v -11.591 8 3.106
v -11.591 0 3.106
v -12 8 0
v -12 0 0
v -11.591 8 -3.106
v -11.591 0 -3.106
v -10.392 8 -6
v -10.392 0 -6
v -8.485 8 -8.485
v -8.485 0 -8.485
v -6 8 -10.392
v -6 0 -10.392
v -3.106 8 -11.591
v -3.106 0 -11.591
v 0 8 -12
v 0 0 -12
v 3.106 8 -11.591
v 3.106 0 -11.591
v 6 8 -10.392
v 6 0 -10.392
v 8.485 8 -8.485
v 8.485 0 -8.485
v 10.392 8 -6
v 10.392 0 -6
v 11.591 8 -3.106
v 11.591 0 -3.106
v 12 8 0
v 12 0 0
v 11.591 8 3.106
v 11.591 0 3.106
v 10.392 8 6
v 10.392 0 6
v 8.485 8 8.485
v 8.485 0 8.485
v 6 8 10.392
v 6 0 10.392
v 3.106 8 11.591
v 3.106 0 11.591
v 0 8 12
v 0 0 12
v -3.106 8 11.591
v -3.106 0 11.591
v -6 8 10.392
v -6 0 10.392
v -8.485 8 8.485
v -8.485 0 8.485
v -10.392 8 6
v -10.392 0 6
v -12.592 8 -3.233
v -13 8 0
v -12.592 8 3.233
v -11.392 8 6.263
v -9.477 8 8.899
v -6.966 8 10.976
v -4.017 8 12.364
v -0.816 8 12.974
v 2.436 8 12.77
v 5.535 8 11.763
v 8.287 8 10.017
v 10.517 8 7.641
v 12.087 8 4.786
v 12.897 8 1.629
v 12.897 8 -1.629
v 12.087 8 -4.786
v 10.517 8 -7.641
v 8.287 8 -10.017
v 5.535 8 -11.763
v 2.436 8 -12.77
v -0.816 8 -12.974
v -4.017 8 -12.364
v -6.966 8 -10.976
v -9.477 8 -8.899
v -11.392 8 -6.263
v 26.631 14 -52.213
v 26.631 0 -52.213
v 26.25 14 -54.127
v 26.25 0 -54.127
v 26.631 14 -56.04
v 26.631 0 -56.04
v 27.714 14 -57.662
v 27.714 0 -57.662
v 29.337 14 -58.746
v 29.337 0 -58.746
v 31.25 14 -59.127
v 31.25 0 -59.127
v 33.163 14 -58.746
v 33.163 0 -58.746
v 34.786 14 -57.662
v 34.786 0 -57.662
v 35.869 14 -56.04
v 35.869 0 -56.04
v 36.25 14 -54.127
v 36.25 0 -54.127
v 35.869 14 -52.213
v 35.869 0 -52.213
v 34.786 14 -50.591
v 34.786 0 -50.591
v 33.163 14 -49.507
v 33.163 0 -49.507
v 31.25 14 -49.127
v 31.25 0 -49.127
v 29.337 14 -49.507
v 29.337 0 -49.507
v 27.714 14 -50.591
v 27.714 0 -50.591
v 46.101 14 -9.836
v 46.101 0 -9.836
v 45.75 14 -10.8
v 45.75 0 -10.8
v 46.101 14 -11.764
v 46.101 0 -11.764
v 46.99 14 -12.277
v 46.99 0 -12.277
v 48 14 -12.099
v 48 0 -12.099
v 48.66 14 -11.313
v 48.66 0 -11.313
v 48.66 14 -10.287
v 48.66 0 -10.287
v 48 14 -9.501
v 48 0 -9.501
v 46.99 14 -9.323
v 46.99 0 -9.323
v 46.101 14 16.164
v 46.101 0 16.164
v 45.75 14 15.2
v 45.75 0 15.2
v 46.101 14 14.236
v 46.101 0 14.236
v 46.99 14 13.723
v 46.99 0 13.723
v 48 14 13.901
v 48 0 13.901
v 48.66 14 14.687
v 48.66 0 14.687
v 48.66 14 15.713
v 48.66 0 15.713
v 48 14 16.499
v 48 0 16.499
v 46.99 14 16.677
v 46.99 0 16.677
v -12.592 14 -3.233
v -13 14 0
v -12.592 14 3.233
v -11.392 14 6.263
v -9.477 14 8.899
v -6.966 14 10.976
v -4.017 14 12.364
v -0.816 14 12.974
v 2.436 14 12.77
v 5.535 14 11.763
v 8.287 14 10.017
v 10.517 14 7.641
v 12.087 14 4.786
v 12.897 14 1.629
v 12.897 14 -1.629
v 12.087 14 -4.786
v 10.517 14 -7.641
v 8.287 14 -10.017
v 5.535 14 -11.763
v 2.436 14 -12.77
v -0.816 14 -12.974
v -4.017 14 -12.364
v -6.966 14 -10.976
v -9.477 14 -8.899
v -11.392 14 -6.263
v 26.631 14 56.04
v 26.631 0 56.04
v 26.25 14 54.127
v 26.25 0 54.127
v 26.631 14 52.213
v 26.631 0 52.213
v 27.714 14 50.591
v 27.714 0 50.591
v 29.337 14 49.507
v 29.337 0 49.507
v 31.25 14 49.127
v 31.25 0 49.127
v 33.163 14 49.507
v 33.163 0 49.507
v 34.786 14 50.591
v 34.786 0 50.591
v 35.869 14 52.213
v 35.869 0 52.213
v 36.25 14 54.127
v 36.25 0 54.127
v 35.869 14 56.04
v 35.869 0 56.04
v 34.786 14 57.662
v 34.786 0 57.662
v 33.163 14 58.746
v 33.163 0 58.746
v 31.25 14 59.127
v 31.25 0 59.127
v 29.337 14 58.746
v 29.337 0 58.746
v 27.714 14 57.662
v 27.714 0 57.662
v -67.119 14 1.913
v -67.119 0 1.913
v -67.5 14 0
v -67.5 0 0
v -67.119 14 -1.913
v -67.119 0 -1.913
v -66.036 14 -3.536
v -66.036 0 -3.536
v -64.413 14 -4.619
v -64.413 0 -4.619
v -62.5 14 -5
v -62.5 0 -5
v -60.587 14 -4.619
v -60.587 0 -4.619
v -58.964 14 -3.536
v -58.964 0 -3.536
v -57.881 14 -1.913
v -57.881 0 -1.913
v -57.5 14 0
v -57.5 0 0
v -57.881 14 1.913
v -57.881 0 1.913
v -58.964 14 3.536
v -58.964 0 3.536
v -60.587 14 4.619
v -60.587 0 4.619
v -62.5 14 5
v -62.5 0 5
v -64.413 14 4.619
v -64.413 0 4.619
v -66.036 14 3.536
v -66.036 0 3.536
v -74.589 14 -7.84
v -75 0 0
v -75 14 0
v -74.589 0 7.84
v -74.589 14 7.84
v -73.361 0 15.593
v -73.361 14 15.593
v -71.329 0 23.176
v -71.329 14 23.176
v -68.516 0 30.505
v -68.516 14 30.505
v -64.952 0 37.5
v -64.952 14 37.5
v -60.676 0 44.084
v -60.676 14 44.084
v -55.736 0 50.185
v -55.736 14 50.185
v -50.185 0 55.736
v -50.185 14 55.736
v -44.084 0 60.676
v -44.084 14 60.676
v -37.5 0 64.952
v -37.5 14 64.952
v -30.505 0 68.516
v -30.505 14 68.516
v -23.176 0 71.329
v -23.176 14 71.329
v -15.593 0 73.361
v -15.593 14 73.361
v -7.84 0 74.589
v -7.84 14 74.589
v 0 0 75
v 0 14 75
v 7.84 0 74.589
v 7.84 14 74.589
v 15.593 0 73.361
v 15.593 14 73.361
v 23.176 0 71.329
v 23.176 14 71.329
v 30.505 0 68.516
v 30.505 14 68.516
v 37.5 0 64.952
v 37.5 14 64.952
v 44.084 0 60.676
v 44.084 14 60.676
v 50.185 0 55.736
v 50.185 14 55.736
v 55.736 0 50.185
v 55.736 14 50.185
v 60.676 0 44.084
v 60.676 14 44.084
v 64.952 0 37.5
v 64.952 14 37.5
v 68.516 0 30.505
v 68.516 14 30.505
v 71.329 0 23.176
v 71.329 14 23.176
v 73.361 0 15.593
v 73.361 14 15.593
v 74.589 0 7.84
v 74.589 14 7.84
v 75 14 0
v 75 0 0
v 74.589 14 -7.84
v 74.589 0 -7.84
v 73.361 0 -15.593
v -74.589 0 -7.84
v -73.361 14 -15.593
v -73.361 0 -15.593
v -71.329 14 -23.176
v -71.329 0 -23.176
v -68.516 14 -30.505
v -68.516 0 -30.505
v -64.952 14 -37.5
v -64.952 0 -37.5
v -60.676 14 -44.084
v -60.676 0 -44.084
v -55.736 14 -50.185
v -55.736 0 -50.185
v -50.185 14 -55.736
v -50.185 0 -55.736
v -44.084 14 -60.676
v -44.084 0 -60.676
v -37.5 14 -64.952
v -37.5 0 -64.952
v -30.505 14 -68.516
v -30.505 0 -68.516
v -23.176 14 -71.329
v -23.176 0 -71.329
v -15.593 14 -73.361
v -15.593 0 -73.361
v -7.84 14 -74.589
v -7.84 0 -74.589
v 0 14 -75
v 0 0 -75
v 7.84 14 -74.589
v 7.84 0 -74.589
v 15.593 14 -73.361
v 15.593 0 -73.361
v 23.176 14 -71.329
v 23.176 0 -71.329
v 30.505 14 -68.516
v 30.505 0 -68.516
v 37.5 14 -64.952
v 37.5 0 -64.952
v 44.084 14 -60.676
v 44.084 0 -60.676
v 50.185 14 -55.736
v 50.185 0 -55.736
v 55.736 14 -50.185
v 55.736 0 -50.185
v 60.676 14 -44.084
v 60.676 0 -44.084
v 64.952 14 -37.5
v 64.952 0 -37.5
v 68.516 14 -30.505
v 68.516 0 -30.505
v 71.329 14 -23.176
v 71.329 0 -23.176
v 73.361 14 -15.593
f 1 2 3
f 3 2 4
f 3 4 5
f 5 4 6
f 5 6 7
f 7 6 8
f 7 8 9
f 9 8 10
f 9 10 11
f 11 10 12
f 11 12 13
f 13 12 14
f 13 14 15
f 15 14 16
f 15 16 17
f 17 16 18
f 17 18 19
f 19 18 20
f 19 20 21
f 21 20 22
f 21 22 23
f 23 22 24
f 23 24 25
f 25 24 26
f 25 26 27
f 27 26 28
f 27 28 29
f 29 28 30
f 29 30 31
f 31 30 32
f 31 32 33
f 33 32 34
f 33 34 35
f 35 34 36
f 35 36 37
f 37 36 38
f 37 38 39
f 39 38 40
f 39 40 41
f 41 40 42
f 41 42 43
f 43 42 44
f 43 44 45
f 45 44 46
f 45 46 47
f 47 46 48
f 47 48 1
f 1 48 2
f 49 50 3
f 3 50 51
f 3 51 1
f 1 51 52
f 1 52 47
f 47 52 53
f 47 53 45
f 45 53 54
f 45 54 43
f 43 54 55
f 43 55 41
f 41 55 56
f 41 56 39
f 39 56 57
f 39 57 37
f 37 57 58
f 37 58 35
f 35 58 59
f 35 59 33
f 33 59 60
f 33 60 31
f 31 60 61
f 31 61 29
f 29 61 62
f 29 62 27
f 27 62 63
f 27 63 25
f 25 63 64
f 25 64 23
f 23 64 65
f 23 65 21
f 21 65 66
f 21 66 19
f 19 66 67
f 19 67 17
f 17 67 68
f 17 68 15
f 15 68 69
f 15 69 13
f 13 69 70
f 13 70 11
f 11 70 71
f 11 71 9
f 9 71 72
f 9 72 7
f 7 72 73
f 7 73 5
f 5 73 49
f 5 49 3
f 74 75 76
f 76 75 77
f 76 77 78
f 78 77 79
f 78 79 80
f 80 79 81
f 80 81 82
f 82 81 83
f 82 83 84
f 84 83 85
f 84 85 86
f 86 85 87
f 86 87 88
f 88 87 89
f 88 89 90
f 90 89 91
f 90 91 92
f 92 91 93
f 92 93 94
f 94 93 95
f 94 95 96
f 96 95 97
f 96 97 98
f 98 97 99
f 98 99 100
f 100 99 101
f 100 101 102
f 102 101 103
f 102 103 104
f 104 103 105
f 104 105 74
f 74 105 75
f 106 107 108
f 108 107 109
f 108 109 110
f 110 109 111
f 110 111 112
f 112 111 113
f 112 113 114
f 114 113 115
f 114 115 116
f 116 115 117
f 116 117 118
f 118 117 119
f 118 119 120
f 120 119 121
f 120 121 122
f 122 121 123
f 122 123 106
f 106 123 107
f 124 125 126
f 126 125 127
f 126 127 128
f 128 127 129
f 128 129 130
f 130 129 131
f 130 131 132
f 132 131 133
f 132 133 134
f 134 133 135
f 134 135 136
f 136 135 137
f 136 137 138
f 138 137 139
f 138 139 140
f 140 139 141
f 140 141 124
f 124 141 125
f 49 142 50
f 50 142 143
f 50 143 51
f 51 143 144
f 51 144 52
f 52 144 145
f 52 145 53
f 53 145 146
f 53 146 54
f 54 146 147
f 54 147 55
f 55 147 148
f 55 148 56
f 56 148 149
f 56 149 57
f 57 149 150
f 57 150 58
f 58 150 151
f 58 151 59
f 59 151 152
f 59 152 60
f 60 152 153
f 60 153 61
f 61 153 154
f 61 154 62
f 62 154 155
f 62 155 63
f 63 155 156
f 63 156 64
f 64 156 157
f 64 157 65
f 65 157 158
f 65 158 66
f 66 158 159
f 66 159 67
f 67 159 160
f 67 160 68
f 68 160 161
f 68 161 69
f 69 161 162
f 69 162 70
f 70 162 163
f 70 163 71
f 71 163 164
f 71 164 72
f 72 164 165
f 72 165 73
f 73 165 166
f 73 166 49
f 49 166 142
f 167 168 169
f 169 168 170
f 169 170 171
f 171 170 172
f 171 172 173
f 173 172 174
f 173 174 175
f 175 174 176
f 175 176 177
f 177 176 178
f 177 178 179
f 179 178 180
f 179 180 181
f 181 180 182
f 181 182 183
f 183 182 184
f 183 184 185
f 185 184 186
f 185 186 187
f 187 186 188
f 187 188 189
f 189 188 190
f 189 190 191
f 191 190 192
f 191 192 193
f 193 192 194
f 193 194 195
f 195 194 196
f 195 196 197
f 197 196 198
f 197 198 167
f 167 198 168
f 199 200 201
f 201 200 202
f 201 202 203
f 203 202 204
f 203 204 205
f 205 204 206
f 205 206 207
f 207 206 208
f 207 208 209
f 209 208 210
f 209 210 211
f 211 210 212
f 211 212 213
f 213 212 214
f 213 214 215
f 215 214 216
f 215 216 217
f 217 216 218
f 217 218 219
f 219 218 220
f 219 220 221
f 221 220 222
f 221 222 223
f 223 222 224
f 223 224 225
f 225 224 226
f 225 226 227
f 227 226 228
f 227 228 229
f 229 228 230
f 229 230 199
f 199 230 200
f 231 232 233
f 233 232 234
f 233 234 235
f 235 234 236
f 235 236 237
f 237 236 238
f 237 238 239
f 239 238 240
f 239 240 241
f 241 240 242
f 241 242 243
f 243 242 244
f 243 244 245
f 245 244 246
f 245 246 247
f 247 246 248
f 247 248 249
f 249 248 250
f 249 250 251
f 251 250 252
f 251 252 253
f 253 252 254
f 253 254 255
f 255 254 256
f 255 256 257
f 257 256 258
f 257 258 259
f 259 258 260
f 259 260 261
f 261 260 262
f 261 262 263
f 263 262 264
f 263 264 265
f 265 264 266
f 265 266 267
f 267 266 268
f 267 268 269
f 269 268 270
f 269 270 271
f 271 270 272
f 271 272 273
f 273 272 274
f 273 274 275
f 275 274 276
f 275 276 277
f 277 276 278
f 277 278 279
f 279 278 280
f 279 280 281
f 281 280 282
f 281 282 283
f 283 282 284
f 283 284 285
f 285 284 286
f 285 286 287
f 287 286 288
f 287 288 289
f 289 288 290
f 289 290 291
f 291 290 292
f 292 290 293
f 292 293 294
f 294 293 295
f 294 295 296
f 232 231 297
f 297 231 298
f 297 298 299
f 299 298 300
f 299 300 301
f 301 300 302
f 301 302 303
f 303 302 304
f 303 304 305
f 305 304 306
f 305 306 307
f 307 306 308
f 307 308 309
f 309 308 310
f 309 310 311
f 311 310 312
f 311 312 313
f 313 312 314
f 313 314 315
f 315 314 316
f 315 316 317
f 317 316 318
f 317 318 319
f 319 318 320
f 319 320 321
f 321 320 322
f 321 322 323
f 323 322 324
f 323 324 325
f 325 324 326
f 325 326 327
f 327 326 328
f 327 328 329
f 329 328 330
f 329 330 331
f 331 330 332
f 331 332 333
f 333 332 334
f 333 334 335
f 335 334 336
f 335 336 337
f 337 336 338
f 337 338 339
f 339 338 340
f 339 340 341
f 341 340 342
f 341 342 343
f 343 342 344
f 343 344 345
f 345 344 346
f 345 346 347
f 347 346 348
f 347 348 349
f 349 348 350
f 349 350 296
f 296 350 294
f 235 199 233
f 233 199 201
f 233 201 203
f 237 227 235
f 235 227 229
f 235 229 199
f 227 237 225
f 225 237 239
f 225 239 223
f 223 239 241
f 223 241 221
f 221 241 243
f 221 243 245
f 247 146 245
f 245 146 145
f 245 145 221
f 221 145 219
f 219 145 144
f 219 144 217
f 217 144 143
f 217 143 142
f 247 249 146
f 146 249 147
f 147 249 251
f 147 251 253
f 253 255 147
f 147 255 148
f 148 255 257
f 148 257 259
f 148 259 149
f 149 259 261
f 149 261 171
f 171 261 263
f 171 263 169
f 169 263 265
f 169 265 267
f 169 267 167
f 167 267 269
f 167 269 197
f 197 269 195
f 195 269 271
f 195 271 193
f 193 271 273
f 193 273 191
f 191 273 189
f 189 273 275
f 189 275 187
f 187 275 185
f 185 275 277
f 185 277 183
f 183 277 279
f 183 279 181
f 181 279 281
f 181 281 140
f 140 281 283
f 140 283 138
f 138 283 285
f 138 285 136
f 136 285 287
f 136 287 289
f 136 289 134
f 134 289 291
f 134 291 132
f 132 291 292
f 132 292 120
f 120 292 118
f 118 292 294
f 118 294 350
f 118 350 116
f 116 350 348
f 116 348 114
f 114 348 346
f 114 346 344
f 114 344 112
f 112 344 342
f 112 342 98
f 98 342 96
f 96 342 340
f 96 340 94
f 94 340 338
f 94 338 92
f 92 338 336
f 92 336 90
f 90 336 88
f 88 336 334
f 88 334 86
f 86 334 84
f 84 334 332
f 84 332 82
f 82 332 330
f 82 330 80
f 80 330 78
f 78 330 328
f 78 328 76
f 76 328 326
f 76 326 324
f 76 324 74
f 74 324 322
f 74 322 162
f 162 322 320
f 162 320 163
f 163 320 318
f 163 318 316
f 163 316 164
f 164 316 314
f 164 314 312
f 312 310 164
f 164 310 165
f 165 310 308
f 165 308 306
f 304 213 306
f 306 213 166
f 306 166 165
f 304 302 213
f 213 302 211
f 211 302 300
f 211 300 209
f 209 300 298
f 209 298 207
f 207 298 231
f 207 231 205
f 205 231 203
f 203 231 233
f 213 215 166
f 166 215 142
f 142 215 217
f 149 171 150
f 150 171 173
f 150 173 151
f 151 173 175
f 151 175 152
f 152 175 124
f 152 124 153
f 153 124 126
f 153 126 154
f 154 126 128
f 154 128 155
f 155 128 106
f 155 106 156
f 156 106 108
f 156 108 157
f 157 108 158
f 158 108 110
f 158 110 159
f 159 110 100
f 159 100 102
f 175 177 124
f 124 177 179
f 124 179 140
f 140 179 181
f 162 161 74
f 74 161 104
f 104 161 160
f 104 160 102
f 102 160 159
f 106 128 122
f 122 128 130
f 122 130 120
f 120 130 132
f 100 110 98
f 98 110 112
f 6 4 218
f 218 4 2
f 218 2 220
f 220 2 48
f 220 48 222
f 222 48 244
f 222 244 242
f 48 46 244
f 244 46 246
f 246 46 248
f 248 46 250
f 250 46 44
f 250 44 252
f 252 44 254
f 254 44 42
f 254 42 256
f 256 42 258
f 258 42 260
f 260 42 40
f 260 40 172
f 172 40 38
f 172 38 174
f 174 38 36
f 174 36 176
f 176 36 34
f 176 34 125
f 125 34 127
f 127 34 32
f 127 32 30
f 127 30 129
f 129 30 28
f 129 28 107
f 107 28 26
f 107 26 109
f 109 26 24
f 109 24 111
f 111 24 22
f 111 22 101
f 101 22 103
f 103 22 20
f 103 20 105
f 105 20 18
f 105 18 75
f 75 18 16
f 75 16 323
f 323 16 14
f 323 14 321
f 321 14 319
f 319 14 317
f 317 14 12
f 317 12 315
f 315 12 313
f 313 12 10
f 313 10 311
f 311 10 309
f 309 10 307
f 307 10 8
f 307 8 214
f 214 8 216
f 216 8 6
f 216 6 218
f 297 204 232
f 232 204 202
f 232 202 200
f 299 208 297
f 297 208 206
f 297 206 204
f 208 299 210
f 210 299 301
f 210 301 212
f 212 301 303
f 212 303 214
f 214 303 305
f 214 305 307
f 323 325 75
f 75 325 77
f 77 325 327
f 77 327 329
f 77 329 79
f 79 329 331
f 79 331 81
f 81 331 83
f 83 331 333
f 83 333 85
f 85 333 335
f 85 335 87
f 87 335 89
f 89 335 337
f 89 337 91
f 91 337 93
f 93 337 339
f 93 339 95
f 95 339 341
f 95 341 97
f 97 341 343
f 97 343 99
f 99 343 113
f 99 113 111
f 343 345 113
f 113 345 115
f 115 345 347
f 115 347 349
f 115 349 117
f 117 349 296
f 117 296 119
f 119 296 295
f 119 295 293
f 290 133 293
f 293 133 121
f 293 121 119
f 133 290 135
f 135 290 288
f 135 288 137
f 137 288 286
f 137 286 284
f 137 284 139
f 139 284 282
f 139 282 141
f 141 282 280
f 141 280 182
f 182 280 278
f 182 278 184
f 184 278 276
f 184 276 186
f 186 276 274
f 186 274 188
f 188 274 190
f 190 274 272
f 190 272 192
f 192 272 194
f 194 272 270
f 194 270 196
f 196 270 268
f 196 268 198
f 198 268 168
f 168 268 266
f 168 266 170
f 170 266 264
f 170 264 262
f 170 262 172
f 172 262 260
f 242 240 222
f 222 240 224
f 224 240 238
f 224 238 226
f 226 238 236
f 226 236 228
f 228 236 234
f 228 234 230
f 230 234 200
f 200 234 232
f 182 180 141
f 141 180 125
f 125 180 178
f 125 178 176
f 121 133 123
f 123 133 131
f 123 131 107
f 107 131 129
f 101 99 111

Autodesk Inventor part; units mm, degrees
ref_plane "YZ Plane" through (0, 0, 0) normal (1, 0, 0) x (0, 1, 0)
ref_plane "XZ Plane" through (0, 0, 0) normal (0, 1, 0) x (-1, 0, 0)
ref_plane "XY Plane" through (0, 0, 0) normal (0, 0, 1) x (1, 0, 0)
sketch "Boceto1" plane through (0, 0, 0) normal (0, 1, 0) x (-1, 0, 0)
  circle A0 centre (0, 0) radius 75
  circle A1 centre (0, 0) radius 62.5
  circle A2 centre (62.5, 0) radius 5
  circle A3 centre (0, 0) radius 13
  circle A4 centre (0, 0) radius 12
  circle A5 centre (-47.25, 15.2) radius 1.5
  circle A6 centre (-47.25, -10.8) radius 1.5
  circle A7 centre (-31.25, 54.1266) radius 5
  circle A8 centre (-31.25, -54.1266) radius 5
extrude "Extrusión1" add sketch "Boceto1" along normal blind 14 contours A0 | A2 A1 A8 A7
extrude "Extrusión2" add sketch "Boceto1" along normal blind 8 contours A3
thread "Rosca1" size "M10x1.5" class "6H" standard "ANSI Metric M Profile" full length
thread "Rosca2" size "M10x1.5" class "6H" standard "ANSI Metric M Profile" full length
thread "Rosca3" size "M10x1.5" class "6H" standard "ANSI Metric M Profile" full length
thread "Rosca4" size "M3x0.5" class "6H" standard "ANSI Metric M Profile" full length
thread "Rosca5" size "M3x0.5" class "6H" standard "ANSI Metric M Profile" full length
properties part number "1.1.1.Base Sta.Plate"
